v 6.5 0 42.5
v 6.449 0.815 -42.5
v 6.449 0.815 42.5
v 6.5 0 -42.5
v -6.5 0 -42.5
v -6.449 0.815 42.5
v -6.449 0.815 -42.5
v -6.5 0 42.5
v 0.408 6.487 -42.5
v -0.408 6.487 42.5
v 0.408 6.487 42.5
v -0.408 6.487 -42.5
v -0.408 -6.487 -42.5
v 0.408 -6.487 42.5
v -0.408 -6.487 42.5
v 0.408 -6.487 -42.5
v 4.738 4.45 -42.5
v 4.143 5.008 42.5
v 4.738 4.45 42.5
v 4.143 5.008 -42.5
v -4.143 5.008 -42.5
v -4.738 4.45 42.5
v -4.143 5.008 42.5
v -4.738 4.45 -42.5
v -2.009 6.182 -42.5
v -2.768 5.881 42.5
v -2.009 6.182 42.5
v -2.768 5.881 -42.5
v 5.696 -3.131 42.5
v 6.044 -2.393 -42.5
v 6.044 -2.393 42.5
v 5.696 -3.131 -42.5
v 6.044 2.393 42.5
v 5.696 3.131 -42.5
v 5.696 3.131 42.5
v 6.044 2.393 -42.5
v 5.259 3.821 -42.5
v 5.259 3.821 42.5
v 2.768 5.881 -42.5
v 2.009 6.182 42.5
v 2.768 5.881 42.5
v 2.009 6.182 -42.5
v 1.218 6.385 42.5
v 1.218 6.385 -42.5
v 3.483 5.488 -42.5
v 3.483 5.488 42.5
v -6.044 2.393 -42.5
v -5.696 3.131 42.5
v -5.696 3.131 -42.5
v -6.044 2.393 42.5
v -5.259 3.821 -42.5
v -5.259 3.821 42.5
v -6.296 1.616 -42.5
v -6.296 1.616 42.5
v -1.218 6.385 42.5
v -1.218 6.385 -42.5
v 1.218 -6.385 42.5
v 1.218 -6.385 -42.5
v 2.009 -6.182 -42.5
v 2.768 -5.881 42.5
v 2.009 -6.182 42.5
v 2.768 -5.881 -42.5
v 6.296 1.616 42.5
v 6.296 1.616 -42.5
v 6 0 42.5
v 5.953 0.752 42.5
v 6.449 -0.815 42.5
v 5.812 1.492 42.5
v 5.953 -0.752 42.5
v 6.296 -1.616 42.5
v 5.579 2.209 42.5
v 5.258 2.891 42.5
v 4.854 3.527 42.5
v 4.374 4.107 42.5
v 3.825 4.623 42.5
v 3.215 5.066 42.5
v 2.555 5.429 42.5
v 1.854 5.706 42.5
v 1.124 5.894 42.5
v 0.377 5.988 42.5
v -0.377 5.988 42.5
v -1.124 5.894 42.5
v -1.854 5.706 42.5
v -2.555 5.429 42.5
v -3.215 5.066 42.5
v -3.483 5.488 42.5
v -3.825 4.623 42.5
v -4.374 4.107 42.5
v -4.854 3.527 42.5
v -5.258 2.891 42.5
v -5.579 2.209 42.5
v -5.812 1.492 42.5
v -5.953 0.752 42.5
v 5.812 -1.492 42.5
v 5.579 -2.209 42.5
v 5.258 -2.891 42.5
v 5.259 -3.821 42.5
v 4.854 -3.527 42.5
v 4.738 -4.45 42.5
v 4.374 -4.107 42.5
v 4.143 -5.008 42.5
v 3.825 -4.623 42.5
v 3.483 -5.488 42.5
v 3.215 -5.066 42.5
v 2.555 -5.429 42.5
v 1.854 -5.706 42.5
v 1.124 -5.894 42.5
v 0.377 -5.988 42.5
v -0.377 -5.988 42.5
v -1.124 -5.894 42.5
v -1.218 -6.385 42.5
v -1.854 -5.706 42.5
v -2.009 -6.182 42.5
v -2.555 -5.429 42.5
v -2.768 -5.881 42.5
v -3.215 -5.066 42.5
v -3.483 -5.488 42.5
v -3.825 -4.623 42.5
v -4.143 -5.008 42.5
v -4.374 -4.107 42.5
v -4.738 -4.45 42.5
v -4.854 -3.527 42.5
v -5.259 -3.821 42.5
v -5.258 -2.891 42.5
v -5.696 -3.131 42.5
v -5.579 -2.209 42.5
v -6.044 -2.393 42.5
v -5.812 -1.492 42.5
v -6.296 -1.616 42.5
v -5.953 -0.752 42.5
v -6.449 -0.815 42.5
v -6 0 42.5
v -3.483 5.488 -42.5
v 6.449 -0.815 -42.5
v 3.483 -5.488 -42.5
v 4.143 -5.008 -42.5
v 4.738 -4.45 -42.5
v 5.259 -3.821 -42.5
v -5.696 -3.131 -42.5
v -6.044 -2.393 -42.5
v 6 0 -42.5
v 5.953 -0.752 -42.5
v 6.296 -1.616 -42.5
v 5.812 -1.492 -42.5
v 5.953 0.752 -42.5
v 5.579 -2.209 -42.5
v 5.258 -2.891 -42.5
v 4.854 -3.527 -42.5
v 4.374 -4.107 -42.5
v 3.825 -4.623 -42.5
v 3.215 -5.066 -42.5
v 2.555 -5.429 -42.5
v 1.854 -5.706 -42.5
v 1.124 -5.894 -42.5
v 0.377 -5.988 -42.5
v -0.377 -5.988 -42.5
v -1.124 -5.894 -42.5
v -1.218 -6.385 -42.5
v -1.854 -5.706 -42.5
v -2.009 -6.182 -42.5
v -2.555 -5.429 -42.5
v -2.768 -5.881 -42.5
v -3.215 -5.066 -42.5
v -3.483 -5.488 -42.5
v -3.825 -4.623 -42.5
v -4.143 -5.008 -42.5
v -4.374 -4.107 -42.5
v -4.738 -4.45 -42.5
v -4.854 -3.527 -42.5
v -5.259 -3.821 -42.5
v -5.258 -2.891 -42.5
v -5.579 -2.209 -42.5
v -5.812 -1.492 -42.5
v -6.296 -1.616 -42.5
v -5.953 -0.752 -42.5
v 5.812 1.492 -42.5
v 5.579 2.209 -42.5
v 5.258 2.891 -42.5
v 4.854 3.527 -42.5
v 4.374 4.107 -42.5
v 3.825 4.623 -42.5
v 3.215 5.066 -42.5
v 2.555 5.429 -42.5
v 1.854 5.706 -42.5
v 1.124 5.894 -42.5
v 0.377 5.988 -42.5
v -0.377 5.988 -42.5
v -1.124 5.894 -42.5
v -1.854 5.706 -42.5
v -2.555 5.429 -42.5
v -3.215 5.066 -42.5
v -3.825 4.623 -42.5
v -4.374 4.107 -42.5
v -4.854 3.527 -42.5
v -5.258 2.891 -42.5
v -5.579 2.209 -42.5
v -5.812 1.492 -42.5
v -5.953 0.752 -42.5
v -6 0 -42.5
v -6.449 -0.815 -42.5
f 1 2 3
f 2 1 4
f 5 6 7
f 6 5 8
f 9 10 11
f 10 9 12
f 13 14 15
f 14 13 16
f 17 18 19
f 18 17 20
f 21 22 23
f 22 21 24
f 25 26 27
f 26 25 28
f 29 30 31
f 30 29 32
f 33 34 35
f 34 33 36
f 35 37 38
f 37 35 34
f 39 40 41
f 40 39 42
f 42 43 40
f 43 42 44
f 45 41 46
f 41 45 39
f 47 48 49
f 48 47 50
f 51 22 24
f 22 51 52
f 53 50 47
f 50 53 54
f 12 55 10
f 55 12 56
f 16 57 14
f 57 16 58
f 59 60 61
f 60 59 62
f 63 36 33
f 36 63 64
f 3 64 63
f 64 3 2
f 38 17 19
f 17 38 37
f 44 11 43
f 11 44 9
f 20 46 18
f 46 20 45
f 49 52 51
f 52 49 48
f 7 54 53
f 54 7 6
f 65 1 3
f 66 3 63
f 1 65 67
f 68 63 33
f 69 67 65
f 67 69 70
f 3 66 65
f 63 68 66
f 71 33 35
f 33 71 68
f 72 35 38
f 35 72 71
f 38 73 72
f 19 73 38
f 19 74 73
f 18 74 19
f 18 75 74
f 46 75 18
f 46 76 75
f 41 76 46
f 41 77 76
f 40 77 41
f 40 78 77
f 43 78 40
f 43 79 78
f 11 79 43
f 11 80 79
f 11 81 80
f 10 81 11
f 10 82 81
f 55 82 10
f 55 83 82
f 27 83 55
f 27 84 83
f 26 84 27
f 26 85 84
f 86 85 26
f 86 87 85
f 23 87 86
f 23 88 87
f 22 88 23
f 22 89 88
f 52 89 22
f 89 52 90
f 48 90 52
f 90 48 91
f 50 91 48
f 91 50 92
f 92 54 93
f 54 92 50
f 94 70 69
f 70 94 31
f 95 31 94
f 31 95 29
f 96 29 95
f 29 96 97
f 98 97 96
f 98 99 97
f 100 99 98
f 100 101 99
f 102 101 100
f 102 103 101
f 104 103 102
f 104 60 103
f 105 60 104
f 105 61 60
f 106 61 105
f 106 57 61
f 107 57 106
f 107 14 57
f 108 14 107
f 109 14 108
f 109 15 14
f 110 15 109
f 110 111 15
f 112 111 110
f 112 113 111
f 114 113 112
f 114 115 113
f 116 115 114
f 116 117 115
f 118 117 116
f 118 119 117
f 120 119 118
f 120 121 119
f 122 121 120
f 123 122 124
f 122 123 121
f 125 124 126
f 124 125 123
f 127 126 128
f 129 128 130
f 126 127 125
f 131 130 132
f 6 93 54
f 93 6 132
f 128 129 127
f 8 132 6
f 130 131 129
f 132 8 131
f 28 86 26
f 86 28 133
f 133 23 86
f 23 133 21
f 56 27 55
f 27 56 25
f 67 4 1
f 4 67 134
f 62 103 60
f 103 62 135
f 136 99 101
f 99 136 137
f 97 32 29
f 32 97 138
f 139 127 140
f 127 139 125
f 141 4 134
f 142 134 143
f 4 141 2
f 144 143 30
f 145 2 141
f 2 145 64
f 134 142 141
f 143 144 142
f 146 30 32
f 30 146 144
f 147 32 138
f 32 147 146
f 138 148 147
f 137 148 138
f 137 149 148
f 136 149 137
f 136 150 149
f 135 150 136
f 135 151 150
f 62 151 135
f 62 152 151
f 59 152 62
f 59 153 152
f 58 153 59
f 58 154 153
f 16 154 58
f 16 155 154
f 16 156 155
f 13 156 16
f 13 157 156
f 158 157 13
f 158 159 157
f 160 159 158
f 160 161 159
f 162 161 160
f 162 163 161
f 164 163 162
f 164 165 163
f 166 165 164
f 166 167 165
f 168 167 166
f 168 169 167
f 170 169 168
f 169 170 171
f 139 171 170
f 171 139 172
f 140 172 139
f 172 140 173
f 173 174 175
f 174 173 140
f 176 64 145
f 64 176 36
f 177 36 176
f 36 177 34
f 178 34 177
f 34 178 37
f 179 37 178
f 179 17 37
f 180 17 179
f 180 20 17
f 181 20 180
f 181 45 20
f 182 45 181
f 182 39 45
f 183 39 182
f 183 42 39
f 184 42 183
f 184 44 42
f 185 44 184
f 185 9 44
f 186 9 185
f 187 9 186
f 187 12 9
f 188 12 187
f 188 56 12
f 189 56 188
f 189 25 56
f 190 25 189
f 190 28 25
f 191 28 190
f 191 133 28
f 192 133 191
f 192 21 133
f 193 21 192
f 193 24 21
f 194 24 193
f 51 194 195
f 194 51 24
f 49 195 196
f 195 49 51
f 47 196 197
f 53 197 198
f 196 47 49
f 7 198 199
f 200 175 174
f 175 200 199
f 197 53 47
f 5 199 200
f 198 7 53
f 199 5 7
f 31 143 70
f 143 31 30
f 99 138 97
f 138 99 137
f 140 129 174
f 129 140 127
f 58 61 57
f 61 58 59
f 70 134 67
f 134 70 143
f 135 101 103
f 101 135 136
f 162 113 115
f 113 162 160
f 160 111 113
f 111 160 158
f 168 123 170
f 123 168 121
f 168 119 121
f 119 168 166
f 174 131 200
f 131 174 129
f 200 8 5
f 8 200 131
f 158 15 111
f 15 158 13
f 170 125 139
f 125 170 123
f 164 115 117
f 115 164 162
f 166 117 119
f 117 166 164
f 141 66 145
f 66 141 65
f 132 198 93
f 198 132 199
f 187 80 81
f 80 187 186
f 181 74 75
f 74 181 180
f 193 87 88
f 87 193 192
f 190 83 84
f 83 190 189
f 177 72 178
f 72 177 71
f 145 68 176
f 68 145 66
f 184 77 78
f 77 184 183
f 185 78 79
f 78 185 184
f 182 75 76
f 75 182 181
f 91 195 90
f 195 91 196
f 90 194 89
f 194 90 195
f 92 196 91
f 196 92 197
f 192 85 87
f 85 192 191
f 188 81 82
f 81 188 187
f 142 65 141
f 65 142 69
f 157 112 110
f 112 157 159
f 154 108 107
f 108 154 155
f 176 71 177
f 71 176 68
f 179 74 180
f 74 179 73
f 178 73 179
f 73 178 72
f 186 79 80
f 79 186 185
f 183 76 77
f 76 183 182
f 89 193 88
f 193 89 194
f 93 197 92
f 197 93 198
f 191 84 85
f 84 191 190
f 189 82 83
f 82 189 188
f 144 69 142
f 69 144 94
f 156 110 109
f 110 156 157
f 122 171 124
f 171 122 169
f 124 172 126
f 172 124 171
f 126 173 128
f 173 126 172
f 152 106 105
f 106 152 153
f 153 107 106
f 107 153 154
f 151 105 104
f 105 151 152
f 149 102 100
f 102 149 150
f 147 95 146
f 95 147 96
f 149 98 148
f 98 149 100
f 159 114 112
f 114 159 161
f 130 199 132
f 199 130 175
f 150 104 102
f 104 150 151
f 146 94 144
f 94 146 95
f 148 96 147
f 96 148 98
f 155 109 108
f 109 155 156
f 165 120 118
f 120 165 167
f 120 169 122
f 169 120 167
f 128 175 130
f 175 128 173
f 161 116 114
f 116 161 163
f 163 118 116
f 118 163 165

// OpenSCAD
$fn = 50;


difference() {
	union() {
		translate(v = [0, 0, -42.5000000000]) {
			cylinder(h = 85, r = 6.5000000000);
		}
	}
	union() {
		translate(v = [0, 0, -100.0000000000]) {
			cylinder(h = 200, r = 6);
		}
	}
}
